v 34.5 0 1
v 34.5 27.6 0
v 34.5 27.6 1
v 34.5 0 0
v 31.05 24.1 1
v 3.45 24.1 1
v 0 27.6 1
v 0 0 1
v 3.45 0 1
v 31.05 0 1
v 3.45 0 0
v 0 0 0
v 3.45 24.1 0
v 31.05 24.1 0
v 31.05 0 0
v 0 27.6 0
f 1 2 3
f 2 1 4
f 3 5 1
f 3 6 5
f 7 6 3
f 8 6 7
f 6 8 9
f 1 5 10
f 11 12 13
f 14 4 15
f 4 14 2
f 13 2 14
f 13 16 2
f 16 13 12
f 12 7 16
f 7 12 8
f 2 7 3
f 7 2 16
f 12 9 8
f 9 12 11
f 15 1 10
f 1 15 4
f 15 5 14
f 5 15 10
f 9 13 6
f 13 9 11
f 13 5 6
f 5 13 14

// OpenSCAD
/*
 * PROMPT: H0 scale (1:87) single-car garage front wall panel, 34.5 mm wide x 27.6 mm tall x 1 mm thick, with a centred through-hole for the garage door opening 27.6 mm wide x 24.1 mm tall at the bottom.
 */

$fn = 32;

panel_t = 1.0;

bld_w = 34.5;
bld_h = 27.6;
gd_w  = 27.6;
gd_h  = 24.1;

module wall_front() {
    difference() {
        cube([bld_w, bld_h, panel_t]);
        // Garage door opening (through hole), centred horizontally, from y=0
        translate([(bld_w - gd_w) / 2, 0, -1])
            cube([gd_w, gd_h, panel_t + 2]);
    }
}

wall_front();
